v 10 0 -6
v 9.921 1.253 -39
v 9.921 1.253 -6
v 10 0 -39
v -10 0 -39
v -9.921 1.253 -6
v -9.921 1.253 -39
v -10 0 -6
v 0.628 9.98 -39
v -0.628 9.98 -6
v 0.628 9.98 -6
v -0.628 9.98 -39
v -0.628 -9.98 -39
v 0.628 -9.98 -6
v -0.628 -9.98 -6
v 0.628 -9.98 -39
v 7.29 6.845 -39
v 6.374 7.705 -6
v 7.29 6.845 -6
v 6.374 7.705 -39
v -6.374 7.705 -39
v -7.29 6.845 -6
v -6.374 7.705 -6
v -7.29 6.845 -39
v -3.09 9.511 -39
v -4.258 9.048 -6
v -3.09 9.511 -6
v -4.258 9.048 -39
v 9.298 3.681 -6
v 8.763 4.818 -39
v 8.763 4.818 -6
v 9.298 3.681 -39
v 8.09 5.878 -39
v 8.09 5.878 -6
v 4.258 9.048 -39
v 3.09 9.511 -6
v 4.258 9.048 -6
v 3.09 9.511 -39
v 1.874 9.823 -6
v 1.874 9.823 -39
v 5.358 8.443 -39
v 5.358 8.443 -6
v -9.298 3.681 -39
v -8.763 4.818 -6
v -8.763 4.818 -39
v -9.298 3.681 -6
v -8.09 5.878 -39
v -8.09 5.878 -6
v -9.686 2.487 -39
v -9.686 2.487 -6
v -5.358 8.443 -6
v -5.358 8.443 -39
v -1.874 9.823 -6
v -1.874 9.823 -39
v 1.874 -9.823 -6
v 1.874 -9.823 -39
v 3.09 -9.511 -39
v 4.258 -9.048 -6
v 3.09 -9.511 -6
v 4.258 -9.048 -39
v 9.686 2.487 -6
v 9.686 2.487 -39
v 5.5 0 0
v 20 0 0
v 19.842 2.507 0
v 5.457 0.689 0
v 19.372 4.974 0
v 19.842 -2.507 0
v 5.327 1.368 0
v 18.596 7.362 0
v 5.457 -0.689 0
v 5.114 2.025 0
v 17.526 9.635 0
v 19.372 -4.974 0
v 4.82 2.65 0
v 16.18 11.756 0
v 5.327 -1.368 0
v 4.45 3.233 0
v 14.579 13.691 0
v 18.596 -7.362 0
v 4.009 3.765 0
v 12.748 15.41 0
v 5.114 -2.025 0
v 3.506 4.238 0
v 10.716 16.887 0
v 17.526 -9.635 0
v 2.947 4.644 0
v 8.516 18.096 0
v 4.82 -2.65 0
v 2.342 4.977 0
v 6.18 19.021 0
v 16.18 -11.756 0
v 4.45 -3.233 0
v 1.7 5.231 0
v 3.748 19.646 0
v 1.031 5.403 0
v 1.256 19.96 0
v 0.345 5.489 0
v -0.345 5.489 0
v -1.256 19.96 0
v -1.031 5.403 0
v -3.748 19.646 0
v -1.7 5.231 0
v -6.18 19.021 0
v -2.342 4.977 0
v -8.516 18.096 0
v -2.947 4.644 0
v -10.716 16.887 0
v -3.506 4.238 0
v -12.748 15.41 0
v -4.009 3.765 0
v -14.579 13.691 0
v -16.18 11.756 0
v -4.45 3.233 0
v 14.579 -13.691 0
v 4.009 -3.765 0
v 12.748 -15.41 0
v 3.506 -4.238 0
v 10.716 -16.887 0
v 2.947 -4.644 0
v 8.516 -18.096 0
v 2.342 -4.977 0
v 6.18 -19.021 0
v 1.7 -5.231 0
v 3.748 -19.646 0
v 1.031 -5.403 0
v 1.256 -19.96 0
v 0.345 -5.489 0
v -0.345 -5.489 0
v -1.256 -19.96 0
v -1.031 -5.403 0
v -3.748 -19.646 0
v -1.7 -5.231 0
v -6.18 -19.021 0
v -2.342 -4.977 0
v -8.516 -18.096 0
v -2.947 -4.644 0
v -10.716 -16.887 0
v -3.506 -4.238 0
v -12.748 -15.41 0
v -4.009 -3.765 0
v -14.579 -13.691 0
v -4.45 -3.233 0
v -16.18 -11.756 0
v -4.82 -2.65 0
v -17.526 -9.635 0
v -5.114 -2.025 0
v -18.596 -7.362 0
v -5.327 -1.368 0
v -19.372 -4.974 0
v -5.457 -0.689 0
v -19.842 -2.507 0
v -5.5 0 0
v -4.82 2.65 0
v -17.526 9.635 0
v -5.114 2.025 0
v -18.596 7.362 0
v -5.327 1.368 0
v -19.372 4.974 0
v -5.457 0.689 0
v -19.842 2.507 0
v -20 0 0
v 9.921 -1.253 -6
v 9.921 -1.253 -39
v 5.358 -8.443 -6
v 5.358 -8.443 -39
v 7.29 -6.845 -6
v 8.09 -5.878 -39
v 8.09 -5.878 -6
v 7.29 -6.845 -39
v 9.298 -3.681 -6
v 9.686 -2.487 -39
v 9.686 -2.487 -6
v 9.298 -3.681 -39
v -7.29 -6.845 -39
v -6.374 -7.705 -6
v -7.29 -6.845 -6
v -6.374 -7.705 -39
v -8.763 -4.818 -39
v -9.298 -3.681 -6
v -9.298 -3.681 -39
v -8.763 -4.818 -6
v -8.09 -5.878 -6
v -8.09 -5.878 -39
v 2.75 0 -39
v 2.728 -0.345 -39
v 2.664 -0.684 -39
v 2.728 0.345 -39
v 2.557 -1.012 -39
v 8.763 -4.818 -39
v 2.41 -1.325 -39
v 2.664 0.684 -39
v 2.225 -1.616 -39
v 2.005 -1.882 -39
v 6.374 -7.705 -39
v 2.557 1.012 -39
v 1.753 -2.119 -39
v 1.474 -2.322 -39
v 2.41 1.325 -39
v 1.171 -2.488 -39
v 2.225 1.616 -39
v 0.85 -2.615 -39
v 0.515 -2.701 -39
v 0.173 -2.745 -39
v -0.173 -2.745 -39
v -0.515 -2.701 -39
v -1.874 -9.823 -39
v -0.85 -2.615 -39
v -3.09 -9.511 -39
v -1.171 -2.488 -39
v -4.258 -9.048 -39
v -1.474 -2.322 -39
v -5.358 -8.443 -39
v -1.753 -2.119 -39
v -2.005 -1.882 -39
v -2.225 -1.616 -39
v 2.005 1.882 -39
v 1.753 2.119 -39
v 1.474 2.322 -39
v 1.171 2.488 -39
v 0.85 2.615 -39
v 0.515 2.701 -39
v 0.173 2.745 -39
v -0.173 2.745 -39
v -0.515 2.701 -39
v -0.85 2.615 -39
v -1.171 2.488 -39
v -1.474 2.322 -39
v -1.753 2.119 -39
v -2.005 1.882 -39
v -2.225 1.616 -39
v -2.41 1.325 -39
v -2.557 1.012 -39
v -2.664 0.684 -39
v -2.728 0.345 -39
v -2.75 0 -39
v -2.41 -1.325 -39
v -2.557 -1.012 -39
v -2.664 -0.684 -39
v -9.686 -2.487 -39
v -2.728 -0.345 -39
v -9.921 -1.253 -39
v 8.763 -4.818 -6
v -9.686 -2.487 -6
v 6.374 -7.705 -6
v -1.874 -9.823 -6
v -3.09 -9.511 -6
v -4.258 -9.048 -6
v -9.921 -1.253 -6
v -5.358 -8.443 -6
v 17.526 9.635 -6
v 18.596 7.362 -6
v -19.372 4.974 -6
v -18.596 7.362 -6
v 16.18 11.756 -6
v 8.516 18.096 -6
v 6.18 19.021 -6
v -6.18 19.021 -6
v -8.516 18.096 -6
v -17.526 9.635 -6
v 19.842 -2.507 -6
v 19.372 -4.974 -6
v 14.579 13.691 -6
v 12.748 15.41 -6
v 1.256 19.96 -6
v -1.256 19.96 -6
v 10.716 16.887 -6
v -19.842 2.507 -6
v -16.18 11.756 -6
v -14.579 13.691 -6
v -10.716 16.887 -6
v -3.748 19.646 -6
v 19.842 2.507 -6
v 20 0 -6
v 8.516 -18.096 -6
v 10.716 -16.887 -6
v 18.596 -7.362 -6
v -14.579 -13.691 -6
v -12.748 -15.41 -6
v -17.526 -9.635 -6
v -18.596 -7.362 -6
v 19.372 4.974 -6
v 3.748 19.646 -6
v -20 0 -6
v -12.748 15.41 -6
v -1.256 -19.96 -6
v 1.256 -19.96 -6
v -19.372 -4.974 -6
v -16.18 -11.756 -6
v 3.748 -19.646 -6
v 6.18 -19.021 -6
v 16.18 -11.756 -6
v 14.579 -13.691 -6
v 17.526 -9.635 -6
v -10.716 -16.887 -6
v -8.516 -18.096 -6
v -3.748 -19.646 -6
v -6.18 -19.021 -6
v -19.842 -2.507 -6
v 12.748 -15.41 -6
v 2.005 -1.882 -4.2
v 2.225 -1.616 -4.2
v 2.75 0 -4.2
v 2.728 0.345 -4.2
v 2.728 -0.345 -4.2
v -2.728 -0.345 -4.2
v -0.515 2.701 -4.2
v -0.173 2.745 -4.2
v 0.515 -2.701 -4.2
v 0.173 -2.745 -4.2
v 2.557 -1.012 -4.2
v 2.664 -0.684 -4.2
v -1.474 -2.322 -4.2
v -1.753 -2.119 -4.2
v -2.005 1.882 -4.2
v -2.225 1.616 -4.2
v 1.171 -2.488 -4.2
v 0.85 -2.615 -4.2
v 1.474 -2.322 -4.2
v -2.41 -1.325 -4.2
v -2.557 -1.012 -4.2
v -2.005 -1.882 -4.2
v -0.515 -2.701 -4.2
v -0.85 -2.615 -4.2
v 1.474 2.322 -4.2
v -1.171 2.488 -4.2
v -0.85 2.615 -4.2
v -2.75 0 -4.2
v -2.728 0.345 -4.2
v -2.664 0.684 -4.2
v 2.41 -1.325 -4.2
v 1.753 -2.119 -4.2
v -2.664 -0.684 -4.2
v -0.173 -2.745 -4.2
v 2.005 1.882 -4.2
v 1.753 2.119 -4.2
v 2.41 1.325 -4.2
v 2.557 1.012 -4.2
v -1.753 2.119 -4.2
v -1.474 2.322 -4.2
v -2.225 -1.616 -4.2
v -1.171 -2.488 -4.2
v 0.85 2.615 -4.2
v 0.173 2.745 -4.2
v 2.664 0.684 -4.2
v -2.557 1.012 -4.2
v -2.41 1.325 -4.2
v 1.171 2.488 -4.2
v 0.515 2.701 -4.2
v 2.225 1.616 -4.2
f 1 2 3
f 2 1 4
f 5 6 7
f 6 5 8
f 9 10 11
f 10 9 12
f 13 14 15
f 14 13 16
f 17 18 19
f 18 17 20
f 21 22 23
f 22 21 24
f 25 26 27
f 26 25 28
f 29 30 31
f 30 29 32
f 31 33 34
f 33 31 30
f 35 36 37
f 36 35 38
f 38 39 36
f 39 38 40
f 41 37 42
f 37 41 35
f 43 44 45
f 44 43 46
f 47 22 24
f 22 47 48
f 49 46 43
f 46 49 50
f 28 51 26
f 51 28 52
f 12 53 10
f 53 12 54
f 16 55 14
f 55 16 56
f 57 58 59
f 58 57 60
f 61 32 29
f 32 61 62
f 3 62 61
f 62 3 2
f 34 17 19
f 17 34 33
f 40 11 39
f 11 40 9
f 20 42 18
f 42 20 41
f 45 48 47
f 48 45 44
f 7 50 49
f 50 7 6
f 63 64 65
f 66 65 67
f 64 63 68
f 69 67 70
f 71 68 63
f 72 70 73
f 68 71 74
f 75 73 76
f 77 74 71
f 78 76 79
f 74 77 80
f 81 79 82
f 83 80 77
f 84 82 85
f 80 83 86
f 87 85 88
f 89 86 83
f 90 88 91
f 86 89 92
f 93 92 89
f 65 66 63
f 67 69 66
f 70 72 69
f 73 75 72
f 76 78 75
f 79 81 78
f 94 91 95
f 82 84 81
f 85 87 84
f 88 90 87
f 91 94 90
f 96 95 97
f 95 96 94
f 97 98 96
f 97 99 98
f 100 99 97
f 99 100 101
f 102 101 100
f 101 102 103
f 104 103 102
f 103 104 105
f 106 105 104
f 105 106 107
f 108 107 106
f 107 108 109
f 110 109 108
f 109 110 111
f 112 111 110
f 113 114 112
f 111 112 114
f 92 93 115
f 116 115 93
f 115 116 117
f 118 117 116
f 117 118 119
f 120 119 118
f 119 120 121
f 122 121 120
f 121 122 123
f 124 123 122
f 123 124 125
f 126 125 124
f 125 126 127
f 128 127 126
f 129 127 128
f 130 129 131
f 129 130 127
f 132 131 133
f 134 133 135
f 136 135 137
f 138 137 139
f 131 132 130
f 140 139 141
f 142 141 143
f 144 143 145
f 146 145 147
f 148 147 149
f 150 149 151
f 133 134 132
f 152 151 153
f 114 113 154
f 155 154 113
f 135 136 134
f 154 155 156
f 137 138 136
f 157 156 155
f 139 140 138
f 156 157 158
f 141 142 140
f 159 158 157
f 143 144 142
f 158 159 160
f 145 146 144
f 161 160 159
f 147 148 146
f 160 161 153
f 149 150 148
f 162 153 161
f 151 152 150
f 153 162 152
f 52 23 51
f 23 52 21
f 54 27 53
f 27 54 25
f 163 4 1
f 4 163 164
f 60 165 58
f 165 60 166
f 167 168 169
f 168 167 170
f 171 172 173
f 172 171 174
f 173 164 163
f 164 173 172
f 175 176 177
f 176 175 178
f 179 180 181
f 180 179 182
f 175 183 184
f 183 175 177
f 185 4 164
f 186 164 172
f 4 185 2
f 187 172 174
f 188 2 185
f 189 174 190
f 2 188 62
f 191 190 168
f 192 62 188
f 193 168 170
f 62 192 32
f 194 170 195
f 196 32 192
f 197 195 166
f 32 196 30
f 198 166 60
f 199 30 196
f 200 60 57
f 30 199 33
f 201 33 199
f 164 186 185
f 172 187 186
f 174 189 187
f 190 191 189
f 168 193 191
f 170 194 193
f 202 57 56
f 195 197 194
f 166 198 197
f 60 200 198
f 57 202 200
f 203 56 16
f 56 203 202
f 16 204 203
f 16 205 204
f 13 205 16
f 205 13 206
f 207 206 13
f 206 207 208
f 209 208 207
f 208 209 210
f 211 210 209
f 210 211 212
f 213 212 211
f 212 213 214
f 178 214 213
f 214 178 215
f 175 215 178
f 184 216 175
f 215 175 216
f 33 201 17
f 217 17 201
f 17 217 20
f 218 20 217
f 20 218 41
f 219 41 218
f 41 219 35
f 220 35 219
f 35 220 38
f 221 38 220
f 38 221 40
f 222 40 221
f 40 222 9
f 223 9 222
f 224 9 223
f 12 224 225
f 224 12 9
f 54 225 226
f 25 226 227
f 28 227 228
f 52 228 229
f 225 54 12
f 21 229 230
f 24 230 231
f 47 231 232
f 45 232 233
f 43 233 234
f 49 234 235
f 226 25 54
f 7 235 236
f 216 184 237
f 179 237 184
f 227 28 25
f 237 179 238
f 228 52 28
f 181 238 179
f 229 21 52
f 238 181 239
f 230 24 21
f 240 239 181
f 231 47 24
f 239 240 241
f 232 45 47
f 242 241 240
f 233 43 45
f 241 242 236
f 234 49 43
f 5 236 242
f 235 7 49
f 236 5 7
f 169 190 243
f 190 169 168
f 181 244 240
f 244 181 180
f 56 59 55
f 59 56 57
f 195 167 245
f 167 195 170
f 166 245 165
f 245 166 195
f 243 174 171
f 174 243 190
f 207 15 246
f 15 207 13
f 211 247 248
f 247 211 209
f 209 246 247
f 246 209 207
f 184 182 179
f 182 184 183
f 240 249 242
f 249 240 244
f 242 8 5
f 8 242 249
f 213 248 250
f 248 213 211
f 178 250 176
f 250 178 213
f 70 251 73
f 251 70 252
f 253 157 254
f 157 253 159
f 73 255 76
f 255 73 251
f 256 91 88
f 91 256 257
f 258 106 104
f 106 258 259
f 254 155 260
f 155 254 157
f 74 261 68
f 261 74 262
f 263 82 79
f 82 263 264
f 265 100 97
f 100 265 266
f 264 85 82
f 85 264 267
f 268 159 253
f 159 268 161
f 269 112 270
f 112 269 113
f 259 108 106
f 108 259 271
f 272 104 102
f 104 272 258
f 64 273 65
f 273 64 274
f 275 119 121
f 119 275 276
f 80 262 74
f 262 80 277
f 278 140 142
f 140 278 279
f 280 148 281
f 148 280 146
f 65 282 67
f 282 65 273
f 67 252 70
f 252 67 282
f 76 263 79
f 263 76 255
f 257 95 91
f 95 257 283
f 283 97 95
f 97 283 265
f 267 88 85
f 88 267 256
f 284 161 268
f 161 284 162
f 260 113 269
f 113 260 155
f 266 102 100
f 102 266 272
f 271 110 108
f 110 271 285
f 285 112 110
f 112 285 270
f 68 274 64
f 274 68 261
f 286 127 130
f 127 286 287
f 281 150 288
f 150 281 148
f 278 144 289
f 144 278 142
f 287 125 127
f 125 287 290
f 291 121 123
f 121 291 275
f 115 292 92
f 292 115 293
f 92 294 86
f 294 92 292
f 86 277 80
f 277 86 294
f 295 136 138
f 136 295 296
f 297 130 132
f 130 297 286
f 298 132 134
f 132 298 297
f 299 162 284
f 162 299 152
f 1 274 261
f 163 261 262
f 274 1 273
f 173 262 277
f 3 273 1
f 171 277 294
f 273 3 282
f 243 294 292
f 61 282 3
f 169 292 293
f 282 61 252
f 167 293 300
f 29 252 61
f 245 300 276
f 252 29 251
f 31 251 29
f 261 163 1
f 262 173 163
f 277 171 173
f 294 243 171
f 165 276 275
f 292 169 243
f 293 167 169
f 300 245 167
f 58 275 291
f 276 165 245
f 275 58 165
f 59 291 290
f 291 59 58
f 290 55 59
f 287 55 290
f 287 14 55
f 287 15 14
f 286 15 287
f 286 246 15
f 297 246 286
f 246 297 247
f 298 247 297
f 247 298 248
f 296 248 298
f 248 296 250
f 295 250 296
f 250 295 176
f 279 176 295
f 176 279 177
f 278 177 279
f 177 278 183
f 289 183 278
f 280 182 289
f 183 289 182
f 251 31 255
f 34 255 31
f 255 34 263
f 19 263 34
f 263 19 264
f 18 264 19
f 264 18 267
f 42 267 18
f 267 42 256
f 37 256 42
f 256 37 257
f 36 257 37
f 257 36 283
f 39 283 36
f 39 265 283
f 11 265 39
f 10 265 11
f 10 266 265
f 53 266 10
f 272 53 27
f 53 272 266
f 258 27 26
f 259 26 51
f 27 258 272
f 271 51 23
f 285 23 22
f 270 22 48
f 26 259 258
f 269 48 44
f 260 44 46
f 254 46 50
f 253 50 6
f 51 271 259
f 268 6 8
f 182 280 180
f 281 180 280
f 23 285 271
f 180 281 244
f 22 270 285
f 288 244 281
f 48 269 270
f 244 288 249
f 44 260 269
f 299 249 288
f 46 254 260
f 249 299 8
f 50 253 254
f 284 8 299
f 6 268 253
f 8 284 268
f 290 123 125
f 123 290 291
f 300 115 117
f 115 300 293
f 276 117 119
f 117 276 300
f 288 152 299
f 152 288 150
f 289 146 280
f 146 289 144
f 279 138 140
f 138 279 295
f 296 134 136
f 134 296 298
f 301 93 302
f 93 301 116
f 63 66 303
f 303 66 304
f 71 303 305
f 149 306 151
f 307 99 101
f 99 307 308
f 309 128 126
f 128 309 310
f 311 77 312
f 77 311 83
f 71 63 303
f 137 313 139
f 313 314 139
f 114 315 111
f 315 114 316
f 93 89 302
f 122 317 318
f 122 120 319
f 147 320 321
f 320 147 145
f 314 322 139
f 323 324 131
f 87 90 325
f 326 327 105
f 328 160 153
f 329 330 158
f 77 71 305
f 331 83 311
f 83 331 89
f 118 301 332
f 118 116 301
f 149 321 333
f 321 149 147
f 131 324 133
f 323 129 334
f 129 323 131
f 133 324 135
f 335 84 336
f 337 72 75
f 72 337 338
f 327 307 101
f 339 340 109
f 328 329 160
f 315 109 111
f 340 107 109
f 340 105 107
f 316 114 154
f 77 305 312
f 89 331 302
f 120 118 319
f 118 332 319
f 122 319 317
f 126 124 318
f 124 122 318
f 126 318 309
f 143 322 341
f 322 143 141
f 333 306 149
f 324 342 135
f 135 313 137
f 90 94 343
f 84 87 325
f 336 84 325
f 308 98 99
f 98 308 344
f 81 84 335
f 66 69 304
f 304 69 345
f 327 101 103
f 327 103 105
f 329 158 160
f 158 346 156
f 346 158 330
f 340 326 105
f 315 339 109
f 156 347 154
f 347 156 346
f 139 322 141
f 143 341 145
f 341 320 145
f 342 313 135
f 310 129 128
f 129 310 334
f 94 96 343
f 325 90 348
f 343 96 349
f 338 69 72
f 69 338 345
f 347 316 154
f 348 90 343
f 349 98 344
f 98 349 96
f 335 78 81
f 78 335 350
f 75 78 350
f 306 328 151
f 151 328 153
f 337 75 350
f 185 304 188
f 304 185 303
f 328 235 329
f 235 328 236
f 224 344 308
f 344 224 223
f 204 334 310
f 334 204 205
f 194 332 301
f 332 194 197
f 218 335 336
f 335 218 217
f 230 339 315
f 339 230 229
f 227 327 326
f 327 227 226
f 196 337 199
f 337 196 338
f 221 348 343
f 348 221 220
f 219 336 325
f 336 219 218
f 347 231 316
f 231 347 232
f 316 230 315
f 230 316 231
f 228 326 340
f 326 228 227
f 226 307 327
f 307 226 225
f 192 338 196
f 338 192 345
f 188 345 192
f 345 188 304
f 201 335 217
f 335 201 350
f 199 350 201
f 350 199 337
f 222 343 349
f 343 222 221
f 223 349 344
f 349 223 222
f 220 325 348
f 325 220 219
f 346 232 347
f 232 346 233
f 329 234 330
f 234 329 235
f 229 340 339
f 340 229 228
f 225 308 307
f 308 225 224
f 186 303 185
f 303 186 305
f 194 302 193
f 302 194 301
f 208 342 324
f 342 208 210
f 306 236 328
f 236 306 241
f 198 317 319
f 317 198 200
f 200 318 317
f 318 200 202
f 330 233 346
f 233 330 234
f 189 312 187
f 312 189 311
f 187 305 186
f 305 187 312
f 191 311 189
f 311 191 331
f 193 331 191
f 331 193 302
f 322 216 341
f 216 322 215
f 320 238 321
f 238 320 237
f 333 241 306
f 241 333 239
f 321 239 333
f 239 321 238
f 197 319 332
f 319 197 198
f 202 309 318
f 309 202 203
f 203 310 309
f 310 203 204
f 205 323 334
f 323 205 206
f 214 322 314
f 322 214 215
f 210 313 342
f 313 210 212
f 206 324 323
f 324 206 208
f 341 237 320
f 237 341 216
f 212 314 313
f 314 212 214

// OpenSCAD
$fn = 50;


difference() {
	union() {
		translate(v = [0, 0, -39.0000000000]) {
			cylinder(h = 39, r = 10.0000000000);
		}
		translate(v = [0, 0, -6.0000000000]) {
			cylinder(h = 6, r = 20.0000000000);
		}
	}
	union() {
		translate(v = [0, 0, 0]) {
			rotate(a = [0, 0, 0]) {
				difference() {
					union() {
						#translate(v = [0, 0, -39.0000000000]) {
							cylinder(h = 39, r = 2.2500000000);
						}
						#translate(v = [0, 0, -4.2000000000]) {
							cylinder(h = 4.2000000000, r = 10.0000000000, r1 = 2.7500000000, r2 = 5.5000000000);
						}
						#translate(v = [0, 0, -39.0000000000]) {
							cylinder(h = 39, r = 2.7500000000);
						}
						#translate(v = [0, 0, -39.0000000000]) {
							cylinder(h = 39, r = 2.2500000000);
						}
					}
					union();
				}
			}
		}
	}
}
